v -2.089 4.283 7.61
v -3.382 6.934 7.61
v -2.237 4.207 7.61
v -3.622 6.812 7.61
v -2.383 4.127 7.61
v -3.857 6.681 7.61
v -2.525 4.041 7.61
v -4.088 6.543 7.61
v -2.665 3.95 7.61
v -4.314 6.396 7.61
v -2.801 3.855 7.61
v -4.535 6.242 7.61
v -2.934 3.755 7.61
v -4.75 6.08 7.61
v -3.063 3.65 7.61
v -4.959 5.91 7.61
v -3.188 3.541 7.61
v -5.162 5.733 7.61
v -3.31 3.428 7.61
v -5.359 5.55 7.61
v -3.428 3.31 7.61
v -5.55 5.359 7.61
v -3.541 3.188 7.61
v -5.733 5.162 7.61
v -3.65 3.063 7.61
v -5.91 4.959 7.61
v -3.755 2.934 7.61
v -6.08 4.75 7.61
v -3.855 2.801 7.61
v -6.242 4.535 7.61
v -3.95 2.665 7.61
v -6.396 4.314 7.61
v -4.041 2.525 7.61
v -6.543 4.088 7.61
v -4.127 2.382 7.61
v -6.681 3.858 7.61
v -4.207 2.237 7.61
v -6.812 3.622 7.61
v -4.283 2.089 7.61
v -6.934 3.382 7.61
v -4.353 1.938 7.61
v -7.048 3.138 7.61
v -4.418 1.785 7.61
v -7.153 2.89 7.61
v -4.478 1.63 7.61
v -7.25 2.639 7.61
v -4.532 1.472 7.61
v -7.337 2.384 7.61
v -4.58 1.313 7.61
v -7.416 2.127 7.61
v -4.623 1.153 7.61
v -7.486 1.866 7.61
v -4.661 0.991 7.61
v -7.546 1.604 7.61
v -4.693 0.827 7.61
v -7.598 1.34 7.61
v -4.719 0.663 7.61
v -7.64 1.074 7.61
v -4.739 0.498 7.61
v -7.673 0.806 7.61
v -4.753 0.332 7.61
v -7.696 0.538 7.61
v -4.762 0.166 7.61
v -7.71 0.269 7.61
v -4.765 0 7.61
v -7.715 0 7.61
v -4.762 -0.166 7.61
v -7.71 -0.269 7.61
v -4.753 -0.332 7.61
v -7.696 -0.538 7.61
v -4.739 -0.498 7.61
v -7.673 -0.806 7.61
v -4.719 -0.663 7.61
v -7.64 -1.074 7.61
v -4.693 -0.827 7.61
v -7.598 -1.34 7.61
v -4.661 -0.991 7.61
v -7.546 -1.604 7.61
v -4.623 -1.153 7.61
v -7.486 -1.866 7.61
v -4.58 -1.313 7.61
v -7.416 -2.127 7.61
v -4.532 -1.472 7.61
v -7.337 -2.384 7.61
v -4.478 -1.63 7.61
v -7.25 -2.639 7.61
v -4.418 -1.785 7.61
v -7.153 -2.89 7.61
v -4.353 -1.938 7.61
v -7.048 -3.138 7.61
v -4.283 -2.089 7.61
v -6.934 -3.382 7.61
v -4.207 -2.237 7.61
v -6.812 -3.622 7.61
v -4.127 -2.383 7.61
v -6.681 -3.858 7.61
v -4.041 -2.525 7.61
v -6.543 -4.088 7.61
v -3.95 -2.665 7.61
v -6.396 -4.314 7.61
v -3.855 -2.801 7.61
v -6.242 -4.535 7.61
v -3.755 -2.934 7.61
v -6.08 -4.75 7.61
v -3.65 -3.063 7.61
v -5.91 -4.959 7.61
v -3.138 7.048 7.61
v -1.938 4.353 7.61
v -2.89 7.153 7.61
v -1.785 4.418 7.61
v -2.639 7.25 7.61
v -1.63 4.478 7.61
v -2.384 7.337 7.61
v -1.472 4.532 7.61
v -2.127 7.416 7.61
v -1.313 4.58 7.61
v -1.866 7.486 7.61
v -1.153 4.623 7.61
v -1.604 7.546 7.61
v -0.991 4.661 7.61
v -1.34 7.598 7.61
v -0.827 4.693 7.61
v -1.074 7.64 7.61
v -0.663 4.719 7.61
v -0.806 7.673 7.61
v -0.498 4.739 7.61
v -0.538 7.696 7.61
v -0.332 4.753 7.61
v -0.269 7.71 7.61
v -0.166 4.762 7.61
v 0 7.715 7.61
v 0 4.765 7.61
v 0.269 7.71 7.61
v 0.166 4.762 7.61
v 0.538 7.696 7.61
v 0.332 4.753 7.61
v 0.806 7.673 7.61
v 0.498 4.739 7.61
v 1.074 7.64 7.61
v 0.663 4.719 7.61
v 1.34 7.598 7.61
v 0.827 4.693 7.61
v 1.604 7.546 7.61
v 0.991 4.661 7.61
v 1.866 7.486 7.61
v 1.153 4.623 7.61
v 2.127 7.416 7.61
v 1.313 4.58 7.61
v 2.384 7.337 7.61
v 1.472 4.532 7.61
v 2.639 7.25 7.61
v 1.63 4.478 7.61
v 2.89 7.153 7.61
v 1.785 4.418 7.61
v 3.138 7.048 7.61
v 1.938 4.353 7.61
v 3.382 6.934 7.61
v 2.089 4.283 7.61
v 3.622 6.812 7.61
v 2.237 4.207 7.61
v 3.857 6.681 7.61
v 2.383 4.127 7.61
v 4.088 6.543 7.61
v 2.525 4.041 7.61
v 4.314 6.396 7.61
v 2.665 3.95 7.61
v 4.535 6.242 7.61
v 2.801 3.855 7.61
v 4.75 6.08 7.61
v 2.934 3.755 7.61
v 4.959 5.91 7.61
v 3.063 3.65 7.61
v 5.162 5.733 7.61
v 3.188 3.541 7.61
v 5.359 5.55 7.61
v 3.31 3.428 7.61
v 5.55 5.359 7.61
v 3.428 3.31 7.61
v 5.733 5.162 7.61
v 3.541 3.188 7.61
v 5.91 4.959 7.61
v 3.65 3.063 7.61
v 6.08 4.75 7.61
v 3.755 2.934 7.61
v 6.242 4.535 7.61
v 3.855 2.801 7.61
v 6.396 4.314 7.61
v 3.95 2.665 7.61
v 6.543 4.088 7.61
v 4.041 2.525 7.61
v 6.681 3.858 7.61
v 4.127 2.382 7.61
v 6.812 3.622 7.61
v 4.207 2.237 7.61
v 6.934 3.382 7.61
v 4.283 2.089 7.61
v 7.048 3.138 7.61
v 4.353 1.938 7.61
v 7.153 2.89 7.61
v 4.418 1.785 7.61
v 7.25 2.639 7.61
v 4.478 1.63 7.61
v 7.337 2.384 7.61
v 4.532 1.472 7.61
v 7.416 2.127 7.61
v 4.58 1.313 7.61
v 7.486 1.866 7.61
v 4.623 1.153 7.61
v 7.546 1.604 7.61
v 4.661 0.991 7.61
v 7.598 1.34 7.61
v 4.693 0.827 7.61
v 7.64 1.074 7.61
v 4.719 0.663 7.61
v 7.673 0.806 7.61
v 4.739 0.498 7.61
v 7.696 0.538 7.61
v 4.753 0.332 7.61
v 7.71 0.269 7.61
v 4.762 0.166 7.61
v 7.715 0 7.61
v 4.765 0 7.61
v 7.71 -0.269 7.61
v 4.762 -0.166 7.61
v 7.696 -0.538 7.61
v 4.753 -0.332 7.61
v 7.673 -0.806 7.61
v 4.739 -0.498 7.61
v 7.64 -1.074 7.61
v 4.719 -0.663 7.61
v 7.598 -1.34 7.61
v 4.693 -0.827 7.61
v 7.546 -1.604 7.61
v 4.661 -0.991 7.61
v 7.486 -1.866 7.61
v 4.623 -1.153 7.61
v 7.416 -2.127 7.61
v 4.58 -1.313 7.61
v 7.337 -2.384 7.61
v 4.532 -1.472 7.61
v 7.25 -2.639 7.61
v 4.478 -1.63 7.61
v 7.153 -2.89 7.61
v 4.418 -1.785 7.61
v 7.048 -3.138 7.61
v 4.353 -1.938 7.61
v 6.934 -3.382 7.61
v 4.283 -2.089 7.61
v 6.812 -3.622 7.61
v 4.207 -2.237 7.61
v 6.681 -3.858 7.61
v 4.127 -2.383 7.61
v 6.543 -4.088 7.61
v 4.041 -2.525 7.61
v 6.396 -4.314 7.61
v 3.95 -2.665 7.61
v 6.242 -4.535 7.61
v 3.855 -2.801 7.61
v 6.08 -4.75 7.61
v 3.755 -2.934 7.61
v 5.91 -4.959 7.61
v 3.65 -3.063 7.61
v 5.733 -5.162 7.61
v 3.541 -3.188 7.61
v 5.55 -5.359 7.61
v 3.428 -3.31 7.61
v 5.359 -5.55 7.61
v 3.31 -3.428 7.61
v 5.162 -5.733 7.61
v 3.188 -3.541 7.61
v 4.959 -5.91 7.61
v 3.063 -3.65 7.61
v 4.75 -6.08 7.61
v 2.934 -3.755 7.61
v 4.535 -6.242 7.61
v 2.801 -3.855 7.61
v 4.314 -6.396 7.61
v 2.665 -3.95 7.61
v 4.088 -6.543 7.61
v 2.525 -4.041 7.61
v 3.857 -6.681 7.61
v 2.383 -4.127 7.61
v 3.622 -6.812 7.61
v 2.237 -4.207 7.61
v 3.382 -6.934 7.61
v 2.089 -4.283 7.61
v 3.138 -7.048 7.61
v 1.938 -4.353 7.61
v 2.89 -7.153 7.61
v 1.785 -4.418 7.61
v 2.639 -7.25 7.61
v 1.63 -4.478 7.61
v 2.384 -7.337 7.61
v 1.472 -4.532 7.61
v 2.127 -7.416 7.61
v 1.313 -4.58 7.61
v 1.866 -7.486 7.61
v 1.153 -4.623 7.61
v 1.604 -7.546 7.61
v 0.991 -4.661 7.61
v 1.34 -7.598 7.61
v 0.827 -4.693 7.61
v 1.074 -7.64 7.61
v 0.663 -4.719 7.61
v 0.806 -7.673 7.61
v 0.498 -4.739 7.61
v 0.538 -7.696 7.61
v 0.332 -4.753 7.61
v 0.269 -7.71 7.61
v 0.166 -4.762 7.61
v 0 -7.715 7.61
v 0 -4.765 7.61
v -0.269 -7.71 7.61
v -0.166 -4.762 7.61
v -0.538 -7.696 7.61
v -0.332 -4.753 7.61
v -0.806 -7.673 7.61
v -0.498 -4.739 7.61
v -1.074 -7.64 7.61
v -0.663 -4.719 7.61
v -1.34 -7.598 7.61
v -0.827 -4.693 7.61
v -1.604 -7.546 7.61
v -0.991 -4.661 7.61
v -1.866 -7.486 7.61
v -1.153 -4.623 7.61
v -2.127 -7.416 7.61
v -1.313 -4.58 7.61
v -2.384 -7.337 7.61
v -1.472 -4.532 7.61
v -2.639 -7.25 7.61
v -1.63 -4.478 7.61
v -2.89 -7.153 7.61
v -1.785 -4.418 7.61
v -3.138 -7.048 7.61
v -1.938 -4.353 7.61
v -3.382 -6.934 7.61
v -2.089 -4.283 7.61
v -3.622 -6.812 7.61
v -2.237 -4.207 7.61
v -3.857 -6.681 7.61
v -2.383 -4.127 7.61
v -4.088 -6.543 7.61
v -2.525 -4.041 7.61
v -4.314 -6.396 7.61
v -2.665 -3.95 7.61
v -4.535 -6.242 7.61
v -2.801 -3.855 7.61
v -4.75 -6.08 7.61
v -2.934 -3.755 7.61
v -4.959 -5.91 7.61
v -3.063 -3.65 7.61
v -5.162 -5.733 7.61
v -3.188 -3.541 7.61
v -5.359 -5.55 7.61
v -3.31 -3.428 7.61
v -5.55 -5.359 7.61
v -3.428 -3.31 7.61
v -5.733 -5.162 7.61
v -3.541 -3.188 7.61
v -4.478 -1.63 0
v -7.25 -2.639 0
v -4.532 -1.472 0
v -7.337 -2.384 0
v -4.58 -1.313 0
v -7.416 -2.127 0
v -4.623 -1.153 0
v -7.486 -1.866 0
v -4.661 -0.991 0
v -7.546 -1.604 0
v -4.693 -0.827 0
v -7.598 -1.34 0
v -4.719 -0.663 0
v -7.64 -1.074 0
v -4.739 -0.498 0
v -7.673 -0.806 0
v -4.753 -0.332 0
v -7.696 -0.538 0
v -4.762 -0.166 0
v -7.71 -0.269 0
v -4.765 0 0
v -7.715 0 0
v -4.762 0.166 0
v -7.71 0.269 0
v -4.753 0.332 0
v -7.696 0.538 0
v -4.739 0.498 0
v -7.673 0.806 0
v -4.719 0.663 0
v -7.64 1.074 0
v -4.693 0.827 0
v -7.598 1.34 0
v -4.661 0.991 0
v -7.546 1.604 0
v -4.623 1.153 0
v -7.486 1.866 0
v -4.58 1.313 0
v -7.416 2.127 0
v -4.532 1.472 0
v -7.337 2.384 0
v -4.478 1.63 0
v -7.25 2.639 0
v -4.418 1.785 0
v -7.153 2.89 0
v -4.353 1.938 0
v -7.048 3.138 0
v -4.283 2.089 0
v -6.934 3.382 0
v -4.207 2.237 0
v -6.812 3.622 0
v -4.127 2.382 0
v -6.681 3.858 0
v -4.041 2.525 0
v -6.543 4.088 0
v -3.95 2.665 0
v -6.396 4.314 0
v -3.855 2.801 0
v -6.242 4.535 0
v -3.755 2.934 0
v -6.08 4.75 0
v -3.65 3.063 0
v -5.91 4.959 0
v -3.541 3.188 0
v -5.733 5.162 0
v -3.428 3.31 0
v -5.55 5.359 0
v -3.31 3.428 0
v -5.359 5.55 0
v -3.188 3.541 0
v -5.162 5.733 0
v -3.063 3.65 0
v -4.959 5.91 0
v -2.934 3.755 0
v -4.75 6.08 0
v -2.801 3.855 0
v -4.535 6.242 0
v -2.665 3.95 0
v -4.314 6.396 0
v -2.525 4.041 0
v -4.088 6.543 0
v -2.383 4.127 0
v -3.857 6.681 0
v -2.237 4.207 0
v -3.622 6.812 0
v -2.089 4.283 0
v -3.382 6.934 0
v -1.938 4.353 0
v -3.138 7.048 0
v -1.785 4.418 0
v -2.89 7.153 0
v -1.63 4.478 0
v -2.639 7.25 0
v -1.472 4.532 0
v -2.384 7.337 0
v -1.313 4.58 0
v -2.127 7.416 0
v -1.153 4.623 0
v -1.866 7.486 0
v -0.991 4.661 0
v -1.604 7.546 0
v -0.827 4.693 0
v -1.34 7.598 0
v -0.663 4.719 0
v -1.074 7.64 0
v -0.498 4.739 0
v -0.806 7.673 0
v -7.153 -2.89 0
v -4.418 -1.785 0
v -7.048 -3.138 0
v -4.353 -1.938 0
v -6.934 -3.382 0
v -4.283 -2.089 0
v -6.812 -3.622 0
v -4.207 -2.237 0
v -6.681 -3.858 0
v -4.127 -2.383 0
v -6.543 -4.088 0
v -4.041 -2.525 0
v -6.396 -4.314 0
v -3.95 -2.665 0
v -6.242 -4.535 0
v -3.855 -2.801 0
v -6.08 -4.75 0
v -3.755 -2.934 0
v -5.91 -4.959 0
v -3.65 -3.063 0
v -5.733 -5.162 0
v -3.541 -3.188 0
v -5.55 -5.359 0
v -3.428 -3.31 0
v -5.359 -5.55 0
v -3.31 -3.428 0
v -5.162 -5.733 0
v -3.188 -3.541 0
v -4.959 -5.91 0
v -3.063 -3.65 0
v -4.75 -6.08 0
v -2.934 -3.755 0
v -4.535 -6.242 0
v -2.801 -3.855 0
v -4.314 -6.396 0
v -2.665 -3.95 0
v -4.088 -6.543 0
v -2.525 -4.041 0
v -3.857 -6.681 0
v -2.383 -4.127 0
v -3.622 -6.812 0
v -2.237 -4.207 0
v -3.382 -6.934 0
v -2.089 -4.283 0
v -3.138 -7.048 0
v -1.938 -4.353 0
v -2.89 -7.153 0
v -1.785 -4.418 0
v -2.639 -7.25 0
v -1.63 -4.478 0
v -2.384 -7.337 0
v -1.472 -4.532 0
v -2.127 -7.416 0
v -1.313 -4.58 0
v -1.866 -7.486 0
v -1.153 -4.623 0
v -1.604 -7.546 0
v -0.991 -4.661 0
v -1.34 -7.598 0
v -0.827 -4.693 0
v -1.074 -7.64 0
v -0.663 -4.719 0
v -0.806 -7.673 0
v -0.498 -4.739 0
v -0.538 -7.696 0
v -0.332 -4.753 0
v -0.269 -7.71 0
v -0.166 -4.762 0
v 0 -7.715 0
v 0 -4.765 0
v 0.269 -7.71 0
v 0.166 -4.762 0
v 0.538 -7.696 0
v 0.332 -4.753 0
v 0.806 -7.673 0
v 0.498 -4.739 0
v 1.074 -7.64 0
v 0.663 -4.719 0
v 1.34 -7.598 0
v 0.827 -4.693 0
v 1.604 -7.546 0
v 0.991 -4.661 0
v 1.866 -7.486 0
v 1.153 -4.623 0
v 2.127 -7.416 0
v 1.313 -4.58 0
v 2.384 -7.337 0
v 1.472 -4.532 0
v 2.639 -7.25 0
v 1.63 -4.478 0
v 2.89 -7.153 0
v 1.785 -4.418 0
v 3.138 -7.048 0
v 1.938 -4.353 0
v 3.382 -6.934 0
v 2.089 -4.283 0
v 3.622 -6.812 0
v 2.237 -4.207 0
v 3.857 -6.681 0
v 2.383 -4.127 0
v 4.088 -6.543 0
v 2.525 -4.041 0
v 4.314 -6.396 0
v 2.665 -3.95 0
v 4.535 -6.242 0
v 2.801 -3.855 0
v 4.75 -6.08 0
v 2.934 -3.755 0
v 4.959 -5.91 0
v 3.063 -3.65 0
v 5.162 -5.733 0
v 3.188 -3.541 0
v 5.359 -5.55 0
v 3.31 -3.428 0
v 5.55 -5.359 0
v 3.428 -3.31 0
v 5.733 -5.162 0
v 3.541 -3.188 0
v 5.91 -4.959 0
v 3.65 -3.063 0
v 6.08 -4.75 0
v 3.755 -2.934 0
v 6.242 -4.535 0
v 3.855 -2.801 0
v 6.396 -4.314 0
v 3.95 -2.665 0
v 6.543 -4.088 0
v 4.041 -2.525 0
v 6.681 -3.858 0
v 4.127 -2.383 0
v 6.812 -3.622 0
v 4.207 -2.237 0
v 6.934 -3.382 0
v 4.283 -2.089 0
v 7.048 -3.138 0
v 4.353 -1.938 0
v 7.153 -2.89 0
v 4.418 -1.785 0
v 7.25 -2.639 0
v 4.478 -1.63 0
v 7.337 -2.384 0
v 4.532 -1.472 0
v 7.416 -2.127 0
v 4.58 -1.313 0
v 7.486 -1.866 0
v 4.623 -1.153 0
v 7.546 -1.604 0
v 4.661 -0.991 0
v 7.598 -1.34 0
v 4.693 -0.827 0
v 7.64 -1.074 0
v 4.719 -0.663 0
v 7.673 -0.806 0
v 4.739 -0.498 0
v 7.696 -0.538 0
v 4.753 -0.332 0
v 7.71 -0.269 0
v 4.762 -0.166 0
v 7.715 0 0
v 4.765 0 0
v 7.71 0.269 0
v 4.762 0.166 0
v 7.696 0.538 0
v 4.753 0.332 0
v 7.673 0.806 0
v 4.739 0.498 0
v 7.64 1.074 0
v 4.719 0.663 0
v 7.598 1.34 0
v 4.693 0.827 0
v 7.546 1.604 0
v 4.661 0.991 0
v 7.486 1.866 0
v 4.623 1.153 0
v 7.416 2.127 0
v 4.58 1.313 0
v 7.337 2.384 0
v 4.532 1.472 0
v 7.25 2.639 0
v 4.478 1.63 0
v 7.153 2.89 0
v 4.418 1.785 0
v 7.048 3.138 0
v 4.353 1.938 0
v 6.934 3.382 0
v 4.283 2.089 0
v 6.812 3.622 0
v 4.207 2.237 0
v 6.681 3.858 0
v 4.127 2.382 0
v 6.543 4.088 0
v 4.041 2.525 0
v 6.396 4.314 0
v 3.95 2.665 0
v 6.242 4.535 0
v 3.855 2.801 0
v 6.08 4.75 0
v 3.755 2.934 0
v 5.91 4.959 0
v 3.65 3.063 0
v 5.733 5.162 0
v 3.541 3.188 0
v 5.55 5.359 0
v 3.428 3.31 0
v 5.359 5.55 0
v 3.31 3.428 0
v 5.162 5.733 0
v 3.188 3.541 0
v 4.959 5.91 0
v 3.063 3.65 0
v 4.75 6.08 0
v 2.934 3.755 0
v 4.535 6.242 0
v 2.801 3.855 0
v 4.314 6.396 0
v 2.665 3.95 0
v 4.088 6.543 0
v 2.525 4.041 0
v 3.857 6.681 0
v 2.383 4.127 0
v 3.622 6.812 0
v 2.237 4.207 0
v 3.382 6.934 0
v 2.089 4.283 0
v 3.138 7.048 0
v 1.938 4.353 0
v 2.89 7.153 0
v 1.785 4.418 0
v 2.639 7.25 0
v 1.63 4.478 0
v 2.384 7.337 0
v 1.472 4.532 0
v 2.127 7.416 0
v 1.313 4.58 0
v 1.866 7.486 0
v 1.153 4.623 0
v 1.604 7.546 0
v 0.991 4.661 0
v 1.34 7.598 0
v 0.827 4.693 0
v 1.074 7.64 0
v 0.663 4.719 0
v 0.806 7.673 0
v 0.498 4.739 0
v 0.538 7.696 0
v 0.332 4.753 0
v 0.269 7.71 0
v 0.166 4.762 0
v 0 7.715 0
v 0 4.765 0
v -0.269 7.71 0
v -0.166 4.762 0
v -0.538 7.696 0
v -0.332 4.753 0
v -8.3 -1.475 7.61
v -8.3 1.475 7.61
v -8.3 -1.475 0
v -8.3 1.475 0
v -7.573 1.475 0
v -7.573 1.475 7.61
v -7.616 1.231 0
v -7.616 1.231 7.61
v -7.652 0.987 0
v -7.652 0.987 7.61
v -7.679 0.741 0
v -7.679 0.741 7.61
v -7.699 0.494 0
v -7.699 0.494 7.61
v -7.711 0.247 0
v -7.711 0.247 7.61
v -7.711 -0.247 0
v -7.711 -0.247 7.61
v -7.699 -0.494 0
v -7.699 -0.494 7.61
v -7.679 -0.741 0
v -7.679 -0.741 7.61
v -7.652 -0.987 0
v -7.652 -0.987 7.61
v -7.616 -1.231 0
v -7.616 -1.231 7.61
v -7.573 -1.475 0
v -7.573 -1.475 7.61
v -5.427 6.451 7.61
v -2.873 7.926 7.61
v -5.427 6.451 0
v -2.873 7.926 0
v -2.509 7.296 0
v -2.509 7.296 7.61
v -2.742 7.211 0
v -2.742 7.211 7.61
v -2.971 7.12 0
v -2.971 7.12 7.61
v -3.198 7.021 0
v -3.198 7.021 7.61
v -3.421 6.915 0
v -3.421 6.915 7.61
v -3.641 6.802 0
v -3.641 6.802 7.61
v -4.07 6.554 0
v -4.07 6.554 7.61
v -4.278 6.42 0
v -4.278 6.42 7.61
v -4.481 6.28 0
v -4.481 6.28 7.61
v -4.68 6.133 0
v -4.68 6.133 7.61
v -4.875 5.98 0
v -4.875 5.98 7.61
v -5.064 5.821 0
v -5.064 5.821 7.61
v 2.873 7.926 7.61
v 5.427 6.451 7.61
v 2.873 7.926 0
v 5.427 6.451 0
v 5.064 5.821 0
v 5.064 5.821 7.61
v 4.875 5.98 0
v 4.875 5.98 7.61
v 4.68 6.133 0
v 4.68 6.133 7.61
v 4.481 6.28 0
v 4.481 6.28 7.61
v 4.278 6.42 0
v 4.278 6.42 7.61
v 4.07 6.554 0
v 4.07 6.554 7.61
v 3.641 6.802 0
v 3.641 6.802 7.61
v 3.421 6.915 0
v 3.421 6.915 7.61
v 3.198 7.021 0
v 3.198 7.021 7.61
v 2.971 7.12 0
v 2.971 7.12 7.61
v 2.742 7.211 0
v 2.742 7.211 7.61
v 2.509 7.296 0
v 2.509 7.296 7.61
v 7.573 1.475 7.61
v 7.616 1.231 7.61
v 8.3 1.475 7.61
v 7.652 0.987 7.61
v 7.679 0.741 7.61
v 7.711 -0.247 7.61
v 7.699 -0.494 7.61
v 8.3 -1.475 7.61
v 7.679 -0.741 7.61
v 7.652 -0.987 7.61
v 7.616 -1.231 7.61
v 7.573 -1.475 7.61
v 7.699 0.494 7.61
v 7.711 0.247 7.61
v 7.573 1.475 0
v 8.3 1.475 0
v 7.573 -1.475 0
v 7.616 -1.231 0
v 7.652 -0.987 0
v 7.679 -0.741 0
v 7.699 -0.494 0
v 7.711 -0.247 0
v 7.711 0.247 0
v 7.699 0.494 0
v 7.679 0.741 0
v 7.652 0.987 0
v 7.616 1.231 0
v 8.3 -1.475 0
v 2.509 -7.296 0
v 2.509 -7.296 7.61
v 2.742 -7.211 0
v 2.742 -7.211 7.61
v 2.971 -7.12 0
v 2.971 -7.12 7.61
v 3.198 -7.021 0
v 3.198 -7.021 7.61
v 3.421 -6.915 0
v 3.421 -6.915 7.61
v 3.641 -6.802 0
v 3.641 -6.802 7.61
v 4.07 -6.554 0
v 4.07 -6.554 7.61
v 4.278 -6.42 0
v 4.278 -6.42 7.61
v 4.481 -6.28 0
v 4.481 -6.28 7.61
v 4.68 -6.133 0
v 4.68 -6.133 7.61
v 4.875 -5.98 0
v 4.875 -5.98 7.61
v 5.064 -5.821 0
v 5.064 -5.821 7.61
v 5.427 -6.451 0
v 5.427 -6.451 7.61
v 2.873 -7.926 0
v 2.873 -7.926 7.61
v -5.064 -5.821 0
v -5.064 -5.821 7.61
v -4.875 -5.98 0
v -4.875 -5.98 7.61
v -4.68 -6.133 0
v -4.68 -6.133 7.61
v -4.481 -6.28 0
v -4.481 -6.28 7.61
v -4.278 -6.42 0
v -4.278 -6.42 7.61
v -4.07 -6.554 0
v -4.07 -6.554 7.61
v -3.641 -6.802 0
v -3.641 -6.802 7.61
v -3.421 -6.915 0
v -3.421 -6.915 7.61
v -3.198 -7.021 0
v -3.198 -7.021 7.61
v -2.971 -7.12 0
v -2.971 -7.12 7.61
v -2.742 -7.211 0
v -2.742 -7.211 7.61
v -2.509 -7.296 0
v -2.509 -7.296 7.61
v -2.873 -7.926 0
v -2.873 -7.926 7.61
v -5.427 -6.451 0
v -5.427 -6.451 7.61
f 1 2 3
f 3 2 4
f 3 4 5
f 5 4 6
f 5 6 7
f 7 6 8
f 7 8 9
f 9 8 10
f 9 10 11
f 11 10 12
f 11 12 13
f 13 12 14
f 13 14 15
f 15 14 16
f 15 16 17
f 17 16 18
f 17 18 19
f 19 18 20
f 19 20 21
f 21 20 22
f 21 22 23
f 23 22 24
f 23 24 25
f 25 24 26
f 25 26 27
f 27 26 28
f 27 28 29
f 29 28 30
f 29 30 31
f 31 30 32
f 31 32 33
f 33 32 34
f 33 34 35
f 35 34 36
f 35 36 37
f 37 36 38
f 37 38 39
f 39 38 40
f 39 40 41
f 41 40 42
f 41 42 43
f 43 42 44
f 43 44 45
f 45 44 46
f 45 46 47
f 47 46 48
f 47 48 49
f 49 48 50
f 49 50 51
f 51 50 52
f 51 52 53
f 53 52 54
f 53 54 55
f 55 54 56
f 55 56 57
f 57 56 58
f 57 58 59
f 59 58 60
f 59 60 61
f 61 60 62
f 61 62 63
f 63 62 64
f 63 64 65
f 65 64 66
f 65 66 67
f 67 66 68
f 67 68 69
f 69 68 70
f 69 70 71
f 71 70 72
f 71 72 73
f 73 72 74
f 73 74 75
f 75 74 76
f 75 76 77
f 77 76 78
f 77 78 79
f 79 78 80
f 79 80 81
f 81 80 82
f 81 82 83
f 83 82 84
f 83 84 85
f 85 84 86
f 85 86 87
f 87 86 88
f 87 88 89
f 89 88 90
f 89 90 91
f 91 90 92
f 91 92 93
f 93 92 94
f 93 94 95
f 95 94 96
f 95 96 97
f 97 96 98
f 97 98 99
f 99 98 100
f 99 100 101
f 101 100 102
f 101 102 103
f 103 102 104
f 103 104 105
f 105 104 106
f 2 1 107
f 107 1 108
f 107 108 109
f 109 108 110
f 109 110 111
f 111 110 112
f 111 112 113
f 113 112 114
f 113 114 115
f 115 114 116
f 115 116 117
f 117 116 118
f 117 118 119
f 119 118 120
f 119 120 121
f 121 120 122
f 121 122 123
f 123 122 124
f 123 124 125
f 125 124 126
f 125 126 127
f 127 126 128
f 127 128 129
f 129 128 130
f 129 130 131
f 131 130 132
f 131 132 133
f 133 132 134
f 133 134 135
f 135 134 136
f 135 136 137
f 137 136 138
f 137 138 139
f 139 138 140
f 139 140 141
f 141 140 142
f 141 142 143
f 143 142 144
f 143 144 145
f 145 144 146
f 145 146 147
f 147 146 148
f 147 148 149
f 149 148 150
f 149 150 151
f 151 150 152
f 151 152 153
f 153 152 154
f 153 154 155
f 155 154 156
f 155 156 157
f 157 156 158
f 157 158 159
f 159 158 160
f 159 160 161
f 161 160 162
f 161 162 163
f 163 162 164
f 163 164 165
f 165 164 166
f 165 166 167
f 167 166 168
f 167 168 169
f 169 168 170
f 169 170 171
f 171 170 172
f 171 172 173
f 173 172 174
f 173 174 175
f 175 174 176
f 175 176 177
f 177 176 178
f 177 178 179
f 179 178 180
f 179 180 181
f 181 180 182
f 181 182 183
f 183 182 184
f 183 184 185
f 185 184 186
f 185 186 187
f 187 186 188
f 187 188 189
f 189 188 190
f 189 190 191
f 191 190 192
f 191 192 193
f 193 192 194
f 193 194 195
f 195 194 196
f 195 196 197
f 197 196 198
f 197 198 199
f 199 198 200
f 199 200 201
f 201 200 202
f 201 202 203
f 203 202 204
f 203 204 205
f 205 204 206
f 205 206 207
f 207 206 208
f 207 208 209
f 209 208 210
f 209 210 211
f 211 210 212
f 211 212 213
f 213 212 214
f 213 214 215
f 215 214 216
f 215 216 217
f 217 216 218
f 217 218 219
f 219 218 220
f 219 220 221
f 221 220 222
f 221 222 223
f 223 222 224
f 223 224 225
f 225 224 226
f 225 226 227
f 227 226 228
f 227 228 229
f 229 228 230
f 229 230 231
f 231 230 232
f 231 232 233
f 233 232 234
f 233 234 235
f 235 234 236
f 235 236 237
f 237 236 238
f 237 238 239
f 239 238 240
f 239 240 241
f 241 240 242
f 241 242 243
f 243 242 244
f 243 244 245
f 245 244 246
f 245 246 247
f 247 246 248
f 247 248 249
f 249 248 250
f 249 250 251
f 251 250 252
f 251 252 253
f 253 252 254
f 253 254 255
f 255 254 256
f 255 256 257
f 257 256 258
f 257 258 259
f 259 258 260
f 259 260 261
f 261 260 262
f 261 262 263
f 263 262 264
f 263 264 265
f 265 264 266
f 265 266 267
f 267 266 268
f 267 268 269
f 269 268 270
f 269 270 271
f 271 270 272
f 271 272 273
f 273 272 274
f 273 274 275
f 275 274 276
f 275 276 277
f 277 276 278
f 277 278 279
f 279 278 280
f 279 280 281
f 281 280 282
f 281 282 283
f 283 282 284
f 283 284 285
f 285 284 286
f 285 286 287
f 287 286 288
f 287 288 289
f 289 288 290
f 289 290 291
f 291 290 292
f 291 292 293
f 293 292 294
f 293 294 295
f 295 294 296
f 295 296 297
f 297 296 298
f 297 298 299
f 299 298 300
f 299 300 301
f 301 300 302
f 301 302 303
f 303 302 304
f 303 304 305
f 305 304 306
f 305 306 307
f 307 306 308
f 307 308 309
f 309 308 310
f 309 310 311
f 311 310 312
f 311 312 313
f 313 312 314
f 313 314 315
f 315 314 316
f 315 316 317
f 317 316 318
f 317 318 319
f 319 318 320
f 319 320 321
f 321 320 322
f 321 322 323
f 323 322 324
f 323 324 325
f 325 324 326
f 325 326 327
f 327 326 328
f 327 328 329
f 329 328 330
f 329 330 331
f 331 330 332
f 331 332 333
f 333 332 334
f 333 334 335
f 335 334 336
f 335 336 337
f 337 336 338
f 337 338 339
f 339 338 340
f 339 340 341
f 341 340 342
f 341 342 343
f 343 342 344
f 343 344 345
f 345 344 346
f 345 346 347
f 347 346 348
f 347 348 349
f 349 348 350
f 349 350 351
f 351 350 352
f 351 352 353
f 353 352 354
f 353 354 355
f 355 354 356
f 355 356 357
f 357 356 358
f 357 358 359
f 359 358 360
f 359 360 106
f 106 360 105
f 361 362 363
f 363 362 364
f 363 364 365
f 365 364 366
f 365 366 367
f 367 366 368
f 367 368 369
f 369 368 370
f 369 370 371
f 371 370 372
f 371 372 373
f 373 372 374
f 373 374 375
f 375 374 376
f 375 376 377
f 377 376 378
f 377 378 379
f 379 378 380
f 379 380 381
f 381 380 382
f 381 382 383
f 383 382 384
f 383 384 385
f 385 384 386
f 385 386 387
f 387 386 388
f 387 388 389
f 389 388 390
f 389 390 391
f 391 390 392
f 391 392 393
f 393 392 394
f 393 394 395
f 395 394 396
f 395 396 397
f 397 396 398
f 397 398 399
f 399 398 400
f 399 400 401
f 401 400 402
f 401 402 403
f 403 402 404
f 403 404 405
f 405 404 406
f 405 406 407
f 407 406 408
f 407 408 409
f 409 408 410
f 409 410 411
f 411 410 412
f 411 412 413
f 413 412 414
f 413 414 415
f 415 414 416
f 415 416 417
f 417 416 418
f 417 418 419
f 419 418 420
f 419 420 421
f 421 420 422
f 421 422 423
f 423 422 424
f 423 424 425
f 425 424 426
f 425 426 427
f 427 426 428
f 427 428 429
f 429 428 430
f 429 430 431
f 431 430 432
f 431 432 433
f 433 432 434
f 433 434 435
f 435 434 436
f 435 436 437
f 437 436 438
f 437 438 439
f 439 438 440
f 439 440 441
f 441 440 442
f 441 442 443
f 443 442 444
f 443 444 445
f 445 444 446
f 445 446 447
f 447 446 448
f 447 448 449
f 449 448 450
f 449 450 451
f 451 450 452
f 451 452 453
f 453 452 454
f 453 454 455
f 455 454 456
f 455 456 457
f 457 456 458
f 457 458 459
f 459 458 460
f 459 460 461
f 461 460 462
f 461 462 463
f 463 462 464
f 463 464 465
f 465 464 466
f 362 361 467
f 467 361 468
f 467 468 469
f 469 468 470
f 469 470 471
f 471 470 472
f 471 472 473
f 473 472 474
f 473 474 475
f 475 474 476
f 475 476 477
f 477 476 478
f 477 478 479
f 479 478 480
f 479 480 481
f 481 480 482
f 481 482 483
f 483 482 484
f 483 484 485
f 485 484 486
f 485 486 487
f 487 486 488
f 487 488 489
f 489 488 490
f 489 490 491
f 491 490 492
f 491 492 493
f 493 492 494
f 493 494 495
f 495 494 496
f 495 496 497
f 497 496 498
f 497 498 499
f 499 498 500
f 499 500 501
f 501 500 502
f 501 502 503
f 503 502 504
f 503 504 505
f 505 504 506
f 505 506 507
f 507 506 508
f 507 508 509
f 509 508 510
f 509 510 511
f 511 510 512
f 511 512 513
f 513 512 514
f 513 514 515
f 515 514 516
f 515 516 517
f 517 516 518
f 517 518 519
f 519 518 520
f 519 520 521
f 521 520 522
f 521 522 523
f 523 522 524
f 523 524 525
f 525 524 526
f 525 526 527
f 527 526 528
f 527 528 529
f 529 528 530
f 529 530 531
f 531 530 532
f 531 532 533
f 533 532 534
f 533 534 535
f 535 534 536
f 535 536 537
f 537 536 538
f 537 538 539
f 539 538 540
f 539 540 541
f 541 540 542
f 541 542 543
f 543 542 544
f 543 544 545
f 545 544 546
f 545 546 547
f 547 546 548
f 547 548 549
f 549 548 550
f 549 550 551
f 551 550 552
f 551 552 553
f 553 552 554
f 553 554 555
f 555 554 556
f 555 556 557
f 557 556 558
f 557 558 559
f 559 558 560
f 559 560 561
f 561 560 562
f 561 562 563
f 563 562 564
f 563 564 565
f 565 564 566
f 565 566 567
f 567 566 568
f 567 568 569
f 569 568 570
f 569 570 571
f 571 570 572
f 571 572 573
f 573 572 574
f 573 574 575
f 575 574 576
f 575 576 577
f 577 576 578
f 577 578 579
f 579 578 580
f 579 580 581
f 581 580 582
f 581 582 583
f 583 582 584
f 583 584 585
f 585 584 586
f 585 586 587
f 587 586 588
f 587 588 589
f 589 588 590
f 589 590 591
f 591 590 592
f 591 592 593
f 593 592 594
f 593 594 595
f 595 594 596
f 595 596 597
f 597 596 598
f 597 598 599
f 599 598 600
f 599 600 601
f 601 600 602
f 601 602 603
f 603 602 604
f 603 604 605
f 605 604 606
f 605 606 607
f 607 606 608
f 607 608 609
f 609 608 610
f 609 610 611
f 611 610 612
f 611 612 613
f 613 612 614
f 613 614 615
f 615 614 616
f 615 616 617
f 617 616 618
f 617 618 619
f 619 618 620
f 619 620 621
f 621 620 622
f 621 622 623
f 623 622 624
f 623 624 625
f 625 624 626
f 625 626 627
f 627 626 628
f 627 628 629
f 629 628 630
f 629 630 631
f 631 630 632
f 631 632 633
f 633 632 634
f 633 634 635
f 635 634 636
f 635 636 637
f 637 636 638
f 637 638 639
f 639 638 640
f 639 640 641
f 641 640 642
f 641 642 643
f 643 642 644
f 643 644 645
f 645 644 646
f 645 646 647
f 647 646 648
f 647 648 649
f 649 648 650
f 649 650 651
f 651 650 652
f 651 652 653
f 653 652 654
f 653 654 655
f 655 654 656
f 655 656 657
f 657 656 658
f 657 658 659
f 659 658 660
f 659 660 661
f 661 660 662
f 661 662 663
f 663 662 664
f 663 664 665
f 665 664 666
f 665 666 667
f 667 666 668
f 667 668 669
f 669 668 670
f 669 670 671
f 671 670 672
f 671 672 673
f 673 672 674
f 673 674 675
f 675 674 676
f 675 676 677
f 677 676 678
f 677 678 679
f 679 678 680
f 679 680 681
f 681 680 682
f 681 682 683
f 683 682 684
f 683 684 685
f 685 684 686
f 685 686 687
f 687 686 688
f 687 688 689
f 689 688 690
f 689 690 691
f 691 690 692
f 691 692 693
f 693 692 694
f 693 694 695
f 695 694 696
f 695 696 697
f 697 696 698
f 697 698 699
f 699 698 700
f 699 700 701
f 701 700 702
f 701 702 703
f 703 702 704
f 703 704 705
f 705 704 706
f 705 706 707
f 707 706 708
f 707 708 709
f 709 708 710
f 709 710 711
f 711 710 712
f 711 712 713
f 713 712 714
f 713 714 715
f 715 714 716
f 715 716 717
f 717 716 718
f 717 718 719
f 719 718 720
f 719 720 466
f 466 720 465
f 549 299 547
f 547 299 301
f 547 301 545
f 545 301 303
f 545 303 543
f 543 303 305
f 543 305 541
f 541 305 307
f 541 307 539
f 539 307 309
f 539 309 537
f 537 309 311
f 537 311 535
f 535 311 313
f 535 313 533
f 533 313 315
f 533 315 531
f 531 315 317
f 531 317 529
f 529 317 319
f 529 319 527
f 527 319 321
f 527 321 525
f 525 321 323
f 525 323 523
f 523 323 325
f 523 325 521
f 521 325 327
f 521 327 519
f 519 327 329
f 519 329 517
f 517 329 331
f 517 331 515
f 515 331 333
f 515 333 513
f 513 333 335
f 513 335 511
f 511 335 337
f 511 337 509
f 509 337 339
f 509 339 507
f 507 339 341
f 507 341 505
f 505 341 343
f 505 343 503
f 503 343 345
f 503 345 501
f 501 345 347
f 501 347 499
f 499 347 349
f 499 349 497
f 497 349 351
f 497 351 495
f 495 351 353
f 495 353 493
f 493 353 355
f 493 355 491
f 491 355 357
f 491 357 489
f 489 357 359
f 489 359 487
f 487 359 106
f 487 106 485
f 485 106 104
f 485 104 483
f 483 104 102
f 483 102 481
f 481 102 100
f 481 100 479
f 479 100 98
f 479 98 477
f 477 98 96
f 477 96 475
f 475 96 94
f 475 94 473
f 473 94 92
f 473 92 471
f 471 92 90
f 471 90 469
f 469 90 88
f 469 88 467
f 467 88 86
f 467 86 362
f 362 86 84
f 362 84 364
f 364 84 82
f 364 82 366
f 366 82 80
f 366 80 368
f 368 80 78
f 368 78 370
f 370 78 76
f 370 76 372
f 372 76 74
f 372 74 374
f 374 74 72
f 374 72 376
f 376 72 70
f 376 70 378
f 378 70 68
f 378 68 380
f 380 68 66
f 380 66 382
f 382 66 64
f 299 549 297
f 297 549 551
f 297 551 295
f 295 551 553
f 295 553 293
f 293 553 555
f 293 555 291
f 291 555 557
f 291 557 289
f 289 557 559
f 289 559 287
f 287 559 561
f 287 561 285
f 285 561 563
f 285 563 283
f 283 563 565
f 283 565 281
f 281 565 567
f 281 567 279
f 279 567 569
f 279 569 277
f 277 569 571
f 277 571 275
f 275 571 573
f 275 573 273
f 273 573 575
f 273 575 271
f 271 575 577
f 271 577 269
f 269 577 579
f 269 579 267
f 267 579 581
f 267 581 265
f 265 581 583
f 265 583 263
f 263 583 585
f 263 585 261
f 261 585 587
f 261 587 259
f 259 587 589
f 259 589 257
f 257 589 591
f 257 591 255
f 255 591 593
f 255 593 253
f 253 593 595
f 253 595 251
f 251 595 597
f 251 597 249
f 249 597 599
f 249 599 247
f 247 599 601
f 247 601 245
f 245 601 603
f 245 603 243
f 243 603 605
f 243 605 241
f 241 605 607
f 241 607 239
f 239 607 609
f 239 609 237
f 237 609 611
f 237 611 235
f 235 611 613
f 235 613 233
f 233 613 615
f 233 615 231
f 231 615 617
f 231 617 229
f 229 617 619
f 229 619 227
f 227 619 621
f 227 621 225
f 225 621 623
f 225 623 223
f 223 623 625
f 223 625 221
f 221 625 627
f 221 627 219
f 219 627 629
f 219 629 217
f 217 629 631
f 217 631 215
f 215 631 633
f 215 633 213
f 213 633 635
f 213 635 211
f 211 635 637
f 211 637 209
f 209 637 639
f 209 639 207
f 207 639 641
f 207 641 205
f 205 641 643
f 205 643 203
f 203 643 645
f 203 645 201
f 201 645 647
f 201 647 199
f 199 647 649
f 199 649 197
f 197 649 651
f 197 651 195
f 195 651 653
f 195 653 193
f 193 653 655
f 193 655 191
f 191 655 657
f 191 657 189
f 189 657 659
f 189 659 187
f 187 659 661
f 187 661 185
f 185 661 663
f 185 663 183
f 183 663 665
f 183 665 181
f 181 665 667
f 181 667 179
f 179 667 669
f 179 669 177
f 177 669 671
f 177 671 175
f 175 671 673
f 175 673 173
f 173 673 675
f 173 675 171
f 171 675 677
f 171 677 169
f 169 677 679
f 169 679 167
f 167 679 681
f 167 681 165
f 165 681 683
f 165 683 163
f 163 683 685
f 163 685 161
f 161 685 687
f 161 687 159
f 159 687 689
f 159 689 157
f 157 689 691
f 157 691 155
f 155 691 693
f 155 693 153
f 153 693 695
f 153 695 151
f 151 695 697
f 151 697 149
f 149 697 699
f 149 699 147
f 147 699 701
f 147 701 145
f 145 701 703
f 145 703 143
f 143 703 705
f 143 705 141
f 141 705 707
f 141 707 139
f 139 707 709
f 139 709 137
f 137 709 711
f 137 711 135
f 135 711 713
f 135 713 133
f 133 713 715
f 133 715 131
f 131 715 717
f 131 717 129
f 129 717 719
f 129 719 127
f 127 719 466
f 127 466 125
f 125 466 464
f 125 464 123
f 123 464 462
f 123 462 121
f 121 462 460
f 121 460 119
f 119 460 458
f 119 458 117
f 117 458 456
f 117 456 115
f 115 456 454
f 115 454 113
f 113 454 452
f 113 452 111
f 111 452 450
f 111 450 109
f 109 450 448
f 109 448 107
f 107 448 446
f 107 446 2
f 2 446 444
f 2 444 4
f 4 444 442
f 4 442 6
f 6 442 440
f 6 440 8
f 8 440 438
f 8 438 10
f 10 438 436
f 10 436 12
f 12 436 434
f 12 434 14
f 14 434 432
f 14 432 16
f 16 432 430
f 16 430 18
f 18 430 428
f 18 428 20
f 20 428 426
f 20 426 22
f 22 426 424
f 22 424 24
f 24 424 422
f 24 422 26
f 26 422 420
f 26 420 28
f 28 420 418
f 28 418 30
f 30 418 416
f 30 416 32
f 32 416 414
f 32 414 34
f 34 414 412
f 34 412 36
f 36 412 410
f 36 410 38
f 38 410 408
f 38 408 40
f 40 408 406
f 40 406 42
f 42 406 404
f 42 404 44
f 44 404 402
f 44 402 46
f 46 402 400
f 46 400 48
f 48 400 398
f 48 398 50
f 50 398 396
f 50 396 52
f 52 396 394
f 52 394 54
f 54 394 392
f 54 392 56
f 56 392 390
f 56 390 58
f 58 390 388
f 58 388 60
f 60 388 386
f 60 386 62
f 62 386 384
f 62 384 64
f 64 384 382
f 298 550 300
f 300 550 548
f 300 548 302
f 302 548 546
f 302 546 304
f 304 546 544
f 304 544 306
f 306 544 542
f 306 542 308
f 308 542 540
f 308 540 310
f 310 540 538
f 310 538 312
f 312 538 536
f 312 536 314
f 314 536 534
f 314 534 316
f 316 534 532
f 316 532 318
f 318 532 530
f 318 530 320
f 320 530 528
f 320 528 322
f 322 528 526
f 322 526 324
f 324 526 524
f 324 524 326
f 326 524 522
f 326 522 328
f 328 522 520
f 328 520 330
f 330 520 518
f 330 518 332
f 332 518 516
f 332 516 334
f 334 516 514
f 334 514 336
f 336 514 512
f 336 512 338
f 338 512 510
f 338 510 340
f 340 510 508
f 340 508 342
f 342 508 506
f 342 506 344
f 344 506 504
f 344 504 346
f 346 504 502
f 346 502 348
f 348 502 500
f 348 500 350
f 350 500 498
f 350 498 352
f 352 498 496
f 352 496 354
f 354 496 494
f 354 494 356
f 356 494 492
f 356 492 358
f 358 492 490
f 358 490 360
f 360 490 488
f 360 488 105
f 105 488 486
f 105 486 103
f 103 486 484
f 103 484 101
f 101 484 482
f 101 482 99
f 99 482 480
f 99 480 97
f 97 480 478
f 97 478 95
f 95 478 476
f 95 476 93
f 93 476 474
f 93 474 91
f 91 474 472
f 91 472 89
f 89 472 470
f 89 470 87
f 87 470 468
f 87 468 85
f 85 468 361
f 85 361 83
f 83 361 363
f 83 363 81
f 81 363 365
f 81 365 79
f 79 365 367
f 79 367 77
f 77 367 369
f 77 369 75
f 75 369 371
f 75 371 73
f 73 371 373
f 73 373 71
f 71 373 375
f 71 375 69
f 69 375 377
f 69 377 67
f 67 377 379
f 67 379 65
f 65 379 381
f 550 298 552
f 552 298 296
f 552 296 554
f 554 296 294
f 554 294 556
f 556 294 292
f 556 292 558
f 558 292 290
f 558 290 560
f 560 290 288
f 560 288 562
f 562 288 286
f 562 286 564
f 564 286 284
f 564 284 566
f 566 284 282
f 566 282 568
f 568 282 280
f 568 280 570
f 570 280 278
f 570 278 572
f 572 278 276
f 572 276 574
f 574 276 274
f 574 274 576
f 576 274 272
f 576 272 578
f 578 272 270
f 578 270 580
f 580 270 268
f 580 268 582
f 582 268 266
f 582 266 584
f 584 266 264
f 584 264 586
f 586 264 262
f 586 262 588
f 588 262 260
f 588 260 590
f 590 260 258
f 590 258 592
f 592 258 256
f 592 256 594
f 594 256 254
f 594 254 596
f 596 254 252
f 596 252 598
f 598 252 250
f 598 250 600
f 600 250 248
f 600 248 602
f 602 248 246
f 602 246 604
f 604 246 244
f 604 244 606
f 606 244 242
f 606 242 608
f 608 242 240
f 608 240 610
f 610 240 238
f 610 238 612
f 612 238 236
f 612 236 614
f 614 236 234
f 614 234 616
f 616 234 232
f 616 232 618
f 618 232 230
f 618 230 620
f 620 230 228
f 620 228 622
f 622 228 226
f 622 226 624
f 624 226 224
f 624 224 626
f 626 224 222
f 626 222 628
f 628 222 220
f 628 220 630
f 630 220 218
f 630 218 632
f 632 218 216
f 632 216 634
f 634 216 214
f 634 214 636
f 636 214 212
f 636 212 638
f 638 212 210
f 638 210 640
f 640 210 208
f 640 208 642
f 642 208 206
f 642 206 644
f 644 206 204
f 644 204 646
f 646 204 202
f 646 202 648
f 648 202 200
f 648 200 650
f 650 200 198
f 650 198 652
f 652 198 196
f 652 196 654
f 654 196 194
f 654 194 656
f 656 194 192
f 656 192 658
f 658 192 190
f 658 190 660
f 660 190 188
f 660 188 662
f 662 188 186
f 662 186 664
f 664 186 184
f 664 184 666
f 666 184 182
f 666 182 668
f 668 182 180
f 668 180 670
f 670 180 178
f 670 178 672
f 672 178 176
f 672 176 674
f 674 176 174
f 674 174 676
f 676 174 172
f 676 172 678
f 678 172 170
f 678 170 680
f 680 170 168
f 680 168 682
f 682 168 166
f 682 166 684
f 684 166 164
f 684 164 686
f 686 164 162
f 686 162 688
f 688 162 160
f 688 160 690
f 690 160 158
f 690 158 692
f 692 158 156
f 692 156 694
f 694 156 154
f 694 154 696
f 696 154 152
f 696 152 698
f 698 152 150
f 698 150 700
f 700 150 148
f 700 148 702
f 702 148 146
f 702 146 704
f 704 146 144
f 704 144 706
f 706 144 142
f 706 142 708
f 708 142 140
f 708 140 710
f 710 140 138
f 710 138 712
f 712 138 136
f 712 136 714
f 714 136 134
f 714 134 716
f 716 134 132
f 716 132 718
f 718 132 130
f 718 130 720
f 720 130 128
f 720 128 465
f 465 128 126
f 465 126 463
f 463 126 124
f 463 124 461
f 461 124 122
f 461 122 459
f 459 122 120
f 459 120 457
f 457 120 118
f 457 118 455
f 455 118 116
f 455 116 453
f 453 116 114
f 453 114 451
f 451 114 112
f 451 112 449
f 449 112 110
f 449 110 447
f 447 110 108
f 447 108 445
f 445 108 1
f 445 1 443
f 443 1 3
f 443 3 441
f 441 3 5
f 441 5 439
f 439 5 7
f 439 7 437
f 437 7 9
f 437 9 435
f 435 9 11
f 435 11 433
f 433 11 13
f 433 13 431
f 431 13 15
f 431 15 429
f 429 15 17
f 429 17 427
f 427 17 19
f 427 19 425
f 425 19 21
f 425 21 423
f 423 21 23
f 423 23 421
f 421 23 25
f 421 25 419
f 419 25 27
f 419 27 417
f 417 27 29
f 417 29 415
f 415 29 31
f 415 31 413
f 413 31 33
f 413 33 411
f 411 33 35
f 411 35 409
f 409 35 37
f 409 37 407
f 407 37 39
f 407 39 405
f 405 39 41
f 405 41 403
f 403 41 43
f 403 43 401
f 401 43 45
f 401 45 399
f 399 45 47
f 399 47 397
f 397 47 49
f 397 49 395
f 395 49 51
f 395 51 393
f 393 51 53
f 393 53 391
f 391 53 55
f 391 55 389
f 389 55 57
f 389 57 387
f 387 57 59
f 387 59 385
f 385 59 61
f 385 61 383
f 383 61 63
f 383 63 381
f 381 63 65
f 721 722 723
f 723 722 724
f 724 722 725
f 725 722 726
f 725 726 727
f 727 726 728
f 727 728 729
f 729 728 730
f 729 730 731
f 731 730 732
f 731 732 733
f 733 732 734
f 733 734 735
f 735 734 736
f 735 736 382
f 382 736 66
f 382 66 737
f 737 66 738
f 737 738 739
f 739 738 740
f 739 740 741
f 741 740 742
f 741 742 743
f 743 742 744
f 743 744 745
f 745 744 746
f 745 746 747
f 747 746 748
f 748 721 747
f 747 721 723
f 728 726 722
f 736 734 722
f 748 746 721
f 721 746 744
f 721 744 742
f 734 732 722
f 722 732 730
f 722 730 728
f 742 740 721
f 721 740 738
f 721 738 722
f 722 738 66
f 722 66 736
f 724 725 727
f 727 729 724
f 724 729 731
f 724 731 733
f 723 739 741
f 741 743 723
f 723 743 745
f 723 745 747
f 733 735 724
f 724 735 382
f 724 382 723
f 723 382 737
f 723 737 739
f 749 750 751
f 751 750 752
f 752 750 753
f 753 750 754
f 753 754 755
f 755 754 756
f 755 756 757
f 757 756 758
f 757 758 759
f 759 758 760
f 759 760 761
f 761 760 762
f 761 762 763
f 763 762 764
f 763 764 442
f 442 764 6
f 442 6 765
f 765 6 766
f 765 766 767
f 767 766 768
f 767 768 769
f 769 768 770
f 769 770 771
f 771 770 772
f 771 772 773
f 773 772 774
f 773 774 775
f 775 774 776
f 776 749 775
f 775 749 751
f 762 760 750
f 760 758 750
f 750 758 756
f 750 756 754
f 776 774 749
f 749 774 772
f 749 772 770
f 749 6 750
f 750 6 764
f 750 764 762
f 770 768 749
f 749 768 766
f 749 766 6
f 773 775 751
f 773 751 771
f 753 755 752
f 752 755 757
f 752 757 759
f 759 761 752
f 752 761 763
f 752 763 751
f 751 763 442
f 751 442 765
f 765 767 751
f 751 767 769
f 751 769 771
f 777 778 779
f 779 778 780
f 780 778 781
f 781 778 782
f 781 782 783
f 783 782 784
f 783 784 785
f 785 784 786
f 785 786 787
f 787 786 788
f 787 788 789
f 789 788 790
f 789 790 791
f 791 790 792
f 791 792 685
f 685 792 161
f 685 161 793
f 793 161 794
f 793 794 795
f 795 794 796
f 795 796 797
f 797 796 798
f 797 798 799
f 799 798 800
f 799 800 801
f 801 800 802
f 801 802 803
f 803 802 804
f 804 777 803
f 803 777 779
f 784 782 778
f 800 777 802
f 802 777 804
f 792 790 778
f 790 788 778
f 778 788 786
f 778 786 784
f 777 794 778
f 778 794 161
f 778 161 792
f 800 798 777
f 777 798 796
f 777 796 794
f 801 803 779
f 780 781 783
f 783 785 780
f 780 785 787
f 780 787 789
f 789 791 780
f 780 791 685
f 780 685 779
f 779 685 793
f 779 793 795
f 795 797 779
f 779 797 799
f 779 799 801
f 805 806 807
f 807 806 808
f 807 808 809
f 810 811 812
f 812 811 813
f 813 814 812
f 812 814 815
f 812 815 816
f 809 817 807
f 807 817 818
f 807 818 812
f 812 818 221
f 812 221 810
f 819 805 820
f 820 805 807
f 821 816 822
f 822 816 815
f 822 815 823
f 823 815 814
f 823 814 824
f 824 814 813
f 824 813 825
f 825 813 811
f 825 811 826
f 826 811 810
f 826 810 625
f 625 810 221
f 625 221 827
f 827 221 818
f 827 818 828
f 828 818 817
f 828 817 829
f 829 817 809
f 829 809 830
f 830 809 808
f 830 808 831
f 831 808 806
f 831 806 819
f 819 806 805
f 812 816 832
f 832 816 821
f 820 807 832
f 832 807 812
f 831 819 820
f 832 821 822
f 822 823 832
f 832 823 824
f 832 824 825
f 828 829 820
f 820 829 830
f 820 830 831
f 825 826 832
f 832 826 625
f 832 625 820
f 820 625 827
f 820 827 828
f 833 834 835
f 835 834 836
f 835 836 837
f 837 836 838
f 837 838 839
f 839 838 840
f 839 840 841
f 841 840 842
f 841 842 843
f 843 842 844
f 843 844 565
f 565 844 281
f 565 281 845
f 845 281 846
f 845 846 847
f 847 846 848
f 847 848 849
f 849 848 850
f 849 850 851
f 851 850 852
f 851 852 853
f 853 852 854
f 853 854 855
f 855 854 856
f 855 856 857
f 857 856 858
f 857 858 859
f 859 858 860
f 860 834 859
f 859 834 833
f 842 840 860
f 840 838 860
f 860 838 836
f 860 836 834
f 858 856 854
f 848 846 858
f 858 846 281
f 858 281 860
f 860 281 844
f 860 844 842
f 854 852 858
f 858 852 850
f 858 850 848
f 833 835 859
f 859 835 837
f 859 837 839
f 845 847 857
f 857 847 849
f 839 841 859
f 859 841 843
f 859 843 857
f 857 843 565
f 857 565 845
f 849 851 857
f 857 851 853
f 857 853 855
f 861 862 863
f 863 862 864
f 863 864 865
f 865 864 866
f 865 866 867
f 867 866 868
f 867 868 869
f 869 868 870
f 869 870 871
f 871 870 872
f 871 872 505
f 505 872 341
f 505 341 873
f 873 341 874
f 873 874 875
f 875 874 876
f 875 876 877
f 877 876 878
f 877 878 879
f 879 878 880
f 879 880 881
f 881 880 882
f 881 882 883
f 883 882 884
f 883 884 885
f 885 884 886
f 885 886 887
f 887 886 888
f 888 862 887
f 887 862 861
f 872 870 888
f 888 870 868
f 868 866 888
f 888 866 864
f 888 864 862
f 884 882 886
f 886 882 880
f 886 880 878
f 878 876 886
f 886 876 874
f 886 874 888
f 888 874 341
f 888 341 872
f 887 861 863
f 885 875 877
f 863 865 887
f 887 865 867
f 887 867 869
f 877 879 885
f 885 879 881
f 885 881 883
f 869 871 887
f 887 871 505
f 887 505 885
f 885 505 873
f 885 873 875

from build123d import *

# Parameters (mm, degrees)
SKETCH1_R             = 7.715
SKETCH1_R_2           = 4.765
BOSS_EXTRUDE1_DEPTH   = 7.61
BOSS_EXTRUDE3_DEPTH   = 7.61
BOSS_EXTRUDE3_2_DEPTH = 7.61
BOSS_EXTRUDE3_3_DEPTH = 7.61
BOSS_EXTRUDE3_4_DEPTH = 7.61
BOSS_EXTRUDE3_5_DEPTH = 7.61
BOSS_EXTRUDE3_6_DEPTH = 7.61


with BuildPart() as part:
    # Sketch1 → Boss-Extrude1 (new body)
    with BuildSketch(Plane.XY):
        Circle(SKETCH1_R)
        Circle(SKETCH1_R_2, mode=Mode.SUBTRACT)
    extrude(amount=BOSS_EXTRUDE1_DEPTH)


with BuildPart() as body_2:
    # Sketch3 → Boss-Extrude3 (new body)
    with BuildSketch(Plane.XY.offset(7.61)):
        with BuildLine():
            ThreePointArc((-7.572687766, -1.475), (-7.715, 0), (-7.572687766, 1.475))
            Line((-7.572687766, 1.475), (-8.3, 1.475))
            Line((-8.3, 1.475), (-8.3, -1.475))
            Line((-8.3, -1.475), (-7.572687766, -1.475))
        make_face()
    extrude(amount=-BOSS_EXTRUDE3_DEPTH)


with BuildPart() as body_3:
    # Sketch3 → Boss-Extrude3 2 (new body)
    with BuildSketch(Plane.XY.offset(7.61)):
        with BuildLine():
            Line((-2.508956412, 7.29563998), (-2.872612529, 7.925510851))
            Line((-2.872612529, 7.925510851), (-5.427387471, 6.450510851))
            Line((-5.427387471, 6.450510851), (-5.063731354, 5.82063998))
            ThreePointArc((-5.063731354, 5.82063998), (-3.8575, 6.68138599), (-2.508956412, 7.29563998))
        make_face()
    extrude(amount=-BOSS_EXTRUDE3_2_DEPTH)


with BuildPart() as body_4:
    # Sketch3 → Boss-Extrude3 3 (new body)
    with BuildSketch(Plane.XY.offset(7.61)):
        with BuildLine():
            Line((2.872612529, 7.925510851), (2.508956412, 7.29563998))
            ThreePointArc((2.508956412, 7.29563998), (3.8575, 6.68138599), (5.063731354, 5.82063998))
            Line((5.063731354, 5.82063998), (5.427387471, 6.450510851))
            Line((5.427387471, 6.450510851), (2.872612529, 7.925510851))
        make_face()
    extrude(amount=-BOSS_EXTRUDE3_3_DEPTH)


with BuildPart() as body_5:
    # Sketch3 → Boss-Extrude3 4 (new body)
    with BuildSketch(Plane.XY.offset(7.61)):
        with BuildLine():
            Line((8.3, 1.475), (7.572687766, 1.475))
            ThreePointArc((7.572687766, 1.475), (7.679339526, 0.740924722), (7.715, 0))
            ThreePointArc((7.715, 0), (7.679339526, -0.740924722), (7.572687766, -1.475))
            Line((7.572687766, -1.475), (8.3, -1.475))
            Line((8.3, -1.475), (8.3, 1.475))
        make_face()
    extrude(amount=-BOSS_EXTRUDE3_4_DEPTH)


with BuildPart() as body_6:
    # Sketch3 → Boss-Extrude3 5 (new body)
    with BuildSketch(Plane.XY.offset(7.61)):
        with BuildLine():
            Line((5.427387471, -6.450510851), (5.063731354, -5.82063998))
            ThreePointArc((5.063731354, -5.82063998), (3.8575, -6.68138599), (2.508956412, -7.29563998))
            Line((2.508956412, -7.29563998), (2.872612529, -7.925510851))
            Line((2.872612529, -7.925510851), (5.427387471, -6.450510851))
        make_face()
    extrude(amount=-BOSS_EXTRUDE3_5_DEPTH)


with BuildPart() as body_7:
    # Sketch3 → Boss-Extrude3 6 (new body)
    with BuildSketch(Plane.XY.offset(7.61)):
        with BuildLine():
            ThreePointArc((-2.508956412, -7.29563998), (-3.8575, -6.68138599), (-5.063731354, -5.82063998))
            Line((-5.063731354, -5.82063998), (-5.427387471, -6.450510851))
            Line((-5.427387471, -6.450510851), (-2.872612529, -7.925510851))
            Line((-2.872612529, -7.925510851), (-2.508956412, -7.29563998))
        make_face()
    extrude(amount=-BOSS_EXTRUDE3_6_DEPTH)


solid = Compound([part.part, body_2.part, body_3.part, body_4.part, body_5.part, body_6.part, body_7.part])
